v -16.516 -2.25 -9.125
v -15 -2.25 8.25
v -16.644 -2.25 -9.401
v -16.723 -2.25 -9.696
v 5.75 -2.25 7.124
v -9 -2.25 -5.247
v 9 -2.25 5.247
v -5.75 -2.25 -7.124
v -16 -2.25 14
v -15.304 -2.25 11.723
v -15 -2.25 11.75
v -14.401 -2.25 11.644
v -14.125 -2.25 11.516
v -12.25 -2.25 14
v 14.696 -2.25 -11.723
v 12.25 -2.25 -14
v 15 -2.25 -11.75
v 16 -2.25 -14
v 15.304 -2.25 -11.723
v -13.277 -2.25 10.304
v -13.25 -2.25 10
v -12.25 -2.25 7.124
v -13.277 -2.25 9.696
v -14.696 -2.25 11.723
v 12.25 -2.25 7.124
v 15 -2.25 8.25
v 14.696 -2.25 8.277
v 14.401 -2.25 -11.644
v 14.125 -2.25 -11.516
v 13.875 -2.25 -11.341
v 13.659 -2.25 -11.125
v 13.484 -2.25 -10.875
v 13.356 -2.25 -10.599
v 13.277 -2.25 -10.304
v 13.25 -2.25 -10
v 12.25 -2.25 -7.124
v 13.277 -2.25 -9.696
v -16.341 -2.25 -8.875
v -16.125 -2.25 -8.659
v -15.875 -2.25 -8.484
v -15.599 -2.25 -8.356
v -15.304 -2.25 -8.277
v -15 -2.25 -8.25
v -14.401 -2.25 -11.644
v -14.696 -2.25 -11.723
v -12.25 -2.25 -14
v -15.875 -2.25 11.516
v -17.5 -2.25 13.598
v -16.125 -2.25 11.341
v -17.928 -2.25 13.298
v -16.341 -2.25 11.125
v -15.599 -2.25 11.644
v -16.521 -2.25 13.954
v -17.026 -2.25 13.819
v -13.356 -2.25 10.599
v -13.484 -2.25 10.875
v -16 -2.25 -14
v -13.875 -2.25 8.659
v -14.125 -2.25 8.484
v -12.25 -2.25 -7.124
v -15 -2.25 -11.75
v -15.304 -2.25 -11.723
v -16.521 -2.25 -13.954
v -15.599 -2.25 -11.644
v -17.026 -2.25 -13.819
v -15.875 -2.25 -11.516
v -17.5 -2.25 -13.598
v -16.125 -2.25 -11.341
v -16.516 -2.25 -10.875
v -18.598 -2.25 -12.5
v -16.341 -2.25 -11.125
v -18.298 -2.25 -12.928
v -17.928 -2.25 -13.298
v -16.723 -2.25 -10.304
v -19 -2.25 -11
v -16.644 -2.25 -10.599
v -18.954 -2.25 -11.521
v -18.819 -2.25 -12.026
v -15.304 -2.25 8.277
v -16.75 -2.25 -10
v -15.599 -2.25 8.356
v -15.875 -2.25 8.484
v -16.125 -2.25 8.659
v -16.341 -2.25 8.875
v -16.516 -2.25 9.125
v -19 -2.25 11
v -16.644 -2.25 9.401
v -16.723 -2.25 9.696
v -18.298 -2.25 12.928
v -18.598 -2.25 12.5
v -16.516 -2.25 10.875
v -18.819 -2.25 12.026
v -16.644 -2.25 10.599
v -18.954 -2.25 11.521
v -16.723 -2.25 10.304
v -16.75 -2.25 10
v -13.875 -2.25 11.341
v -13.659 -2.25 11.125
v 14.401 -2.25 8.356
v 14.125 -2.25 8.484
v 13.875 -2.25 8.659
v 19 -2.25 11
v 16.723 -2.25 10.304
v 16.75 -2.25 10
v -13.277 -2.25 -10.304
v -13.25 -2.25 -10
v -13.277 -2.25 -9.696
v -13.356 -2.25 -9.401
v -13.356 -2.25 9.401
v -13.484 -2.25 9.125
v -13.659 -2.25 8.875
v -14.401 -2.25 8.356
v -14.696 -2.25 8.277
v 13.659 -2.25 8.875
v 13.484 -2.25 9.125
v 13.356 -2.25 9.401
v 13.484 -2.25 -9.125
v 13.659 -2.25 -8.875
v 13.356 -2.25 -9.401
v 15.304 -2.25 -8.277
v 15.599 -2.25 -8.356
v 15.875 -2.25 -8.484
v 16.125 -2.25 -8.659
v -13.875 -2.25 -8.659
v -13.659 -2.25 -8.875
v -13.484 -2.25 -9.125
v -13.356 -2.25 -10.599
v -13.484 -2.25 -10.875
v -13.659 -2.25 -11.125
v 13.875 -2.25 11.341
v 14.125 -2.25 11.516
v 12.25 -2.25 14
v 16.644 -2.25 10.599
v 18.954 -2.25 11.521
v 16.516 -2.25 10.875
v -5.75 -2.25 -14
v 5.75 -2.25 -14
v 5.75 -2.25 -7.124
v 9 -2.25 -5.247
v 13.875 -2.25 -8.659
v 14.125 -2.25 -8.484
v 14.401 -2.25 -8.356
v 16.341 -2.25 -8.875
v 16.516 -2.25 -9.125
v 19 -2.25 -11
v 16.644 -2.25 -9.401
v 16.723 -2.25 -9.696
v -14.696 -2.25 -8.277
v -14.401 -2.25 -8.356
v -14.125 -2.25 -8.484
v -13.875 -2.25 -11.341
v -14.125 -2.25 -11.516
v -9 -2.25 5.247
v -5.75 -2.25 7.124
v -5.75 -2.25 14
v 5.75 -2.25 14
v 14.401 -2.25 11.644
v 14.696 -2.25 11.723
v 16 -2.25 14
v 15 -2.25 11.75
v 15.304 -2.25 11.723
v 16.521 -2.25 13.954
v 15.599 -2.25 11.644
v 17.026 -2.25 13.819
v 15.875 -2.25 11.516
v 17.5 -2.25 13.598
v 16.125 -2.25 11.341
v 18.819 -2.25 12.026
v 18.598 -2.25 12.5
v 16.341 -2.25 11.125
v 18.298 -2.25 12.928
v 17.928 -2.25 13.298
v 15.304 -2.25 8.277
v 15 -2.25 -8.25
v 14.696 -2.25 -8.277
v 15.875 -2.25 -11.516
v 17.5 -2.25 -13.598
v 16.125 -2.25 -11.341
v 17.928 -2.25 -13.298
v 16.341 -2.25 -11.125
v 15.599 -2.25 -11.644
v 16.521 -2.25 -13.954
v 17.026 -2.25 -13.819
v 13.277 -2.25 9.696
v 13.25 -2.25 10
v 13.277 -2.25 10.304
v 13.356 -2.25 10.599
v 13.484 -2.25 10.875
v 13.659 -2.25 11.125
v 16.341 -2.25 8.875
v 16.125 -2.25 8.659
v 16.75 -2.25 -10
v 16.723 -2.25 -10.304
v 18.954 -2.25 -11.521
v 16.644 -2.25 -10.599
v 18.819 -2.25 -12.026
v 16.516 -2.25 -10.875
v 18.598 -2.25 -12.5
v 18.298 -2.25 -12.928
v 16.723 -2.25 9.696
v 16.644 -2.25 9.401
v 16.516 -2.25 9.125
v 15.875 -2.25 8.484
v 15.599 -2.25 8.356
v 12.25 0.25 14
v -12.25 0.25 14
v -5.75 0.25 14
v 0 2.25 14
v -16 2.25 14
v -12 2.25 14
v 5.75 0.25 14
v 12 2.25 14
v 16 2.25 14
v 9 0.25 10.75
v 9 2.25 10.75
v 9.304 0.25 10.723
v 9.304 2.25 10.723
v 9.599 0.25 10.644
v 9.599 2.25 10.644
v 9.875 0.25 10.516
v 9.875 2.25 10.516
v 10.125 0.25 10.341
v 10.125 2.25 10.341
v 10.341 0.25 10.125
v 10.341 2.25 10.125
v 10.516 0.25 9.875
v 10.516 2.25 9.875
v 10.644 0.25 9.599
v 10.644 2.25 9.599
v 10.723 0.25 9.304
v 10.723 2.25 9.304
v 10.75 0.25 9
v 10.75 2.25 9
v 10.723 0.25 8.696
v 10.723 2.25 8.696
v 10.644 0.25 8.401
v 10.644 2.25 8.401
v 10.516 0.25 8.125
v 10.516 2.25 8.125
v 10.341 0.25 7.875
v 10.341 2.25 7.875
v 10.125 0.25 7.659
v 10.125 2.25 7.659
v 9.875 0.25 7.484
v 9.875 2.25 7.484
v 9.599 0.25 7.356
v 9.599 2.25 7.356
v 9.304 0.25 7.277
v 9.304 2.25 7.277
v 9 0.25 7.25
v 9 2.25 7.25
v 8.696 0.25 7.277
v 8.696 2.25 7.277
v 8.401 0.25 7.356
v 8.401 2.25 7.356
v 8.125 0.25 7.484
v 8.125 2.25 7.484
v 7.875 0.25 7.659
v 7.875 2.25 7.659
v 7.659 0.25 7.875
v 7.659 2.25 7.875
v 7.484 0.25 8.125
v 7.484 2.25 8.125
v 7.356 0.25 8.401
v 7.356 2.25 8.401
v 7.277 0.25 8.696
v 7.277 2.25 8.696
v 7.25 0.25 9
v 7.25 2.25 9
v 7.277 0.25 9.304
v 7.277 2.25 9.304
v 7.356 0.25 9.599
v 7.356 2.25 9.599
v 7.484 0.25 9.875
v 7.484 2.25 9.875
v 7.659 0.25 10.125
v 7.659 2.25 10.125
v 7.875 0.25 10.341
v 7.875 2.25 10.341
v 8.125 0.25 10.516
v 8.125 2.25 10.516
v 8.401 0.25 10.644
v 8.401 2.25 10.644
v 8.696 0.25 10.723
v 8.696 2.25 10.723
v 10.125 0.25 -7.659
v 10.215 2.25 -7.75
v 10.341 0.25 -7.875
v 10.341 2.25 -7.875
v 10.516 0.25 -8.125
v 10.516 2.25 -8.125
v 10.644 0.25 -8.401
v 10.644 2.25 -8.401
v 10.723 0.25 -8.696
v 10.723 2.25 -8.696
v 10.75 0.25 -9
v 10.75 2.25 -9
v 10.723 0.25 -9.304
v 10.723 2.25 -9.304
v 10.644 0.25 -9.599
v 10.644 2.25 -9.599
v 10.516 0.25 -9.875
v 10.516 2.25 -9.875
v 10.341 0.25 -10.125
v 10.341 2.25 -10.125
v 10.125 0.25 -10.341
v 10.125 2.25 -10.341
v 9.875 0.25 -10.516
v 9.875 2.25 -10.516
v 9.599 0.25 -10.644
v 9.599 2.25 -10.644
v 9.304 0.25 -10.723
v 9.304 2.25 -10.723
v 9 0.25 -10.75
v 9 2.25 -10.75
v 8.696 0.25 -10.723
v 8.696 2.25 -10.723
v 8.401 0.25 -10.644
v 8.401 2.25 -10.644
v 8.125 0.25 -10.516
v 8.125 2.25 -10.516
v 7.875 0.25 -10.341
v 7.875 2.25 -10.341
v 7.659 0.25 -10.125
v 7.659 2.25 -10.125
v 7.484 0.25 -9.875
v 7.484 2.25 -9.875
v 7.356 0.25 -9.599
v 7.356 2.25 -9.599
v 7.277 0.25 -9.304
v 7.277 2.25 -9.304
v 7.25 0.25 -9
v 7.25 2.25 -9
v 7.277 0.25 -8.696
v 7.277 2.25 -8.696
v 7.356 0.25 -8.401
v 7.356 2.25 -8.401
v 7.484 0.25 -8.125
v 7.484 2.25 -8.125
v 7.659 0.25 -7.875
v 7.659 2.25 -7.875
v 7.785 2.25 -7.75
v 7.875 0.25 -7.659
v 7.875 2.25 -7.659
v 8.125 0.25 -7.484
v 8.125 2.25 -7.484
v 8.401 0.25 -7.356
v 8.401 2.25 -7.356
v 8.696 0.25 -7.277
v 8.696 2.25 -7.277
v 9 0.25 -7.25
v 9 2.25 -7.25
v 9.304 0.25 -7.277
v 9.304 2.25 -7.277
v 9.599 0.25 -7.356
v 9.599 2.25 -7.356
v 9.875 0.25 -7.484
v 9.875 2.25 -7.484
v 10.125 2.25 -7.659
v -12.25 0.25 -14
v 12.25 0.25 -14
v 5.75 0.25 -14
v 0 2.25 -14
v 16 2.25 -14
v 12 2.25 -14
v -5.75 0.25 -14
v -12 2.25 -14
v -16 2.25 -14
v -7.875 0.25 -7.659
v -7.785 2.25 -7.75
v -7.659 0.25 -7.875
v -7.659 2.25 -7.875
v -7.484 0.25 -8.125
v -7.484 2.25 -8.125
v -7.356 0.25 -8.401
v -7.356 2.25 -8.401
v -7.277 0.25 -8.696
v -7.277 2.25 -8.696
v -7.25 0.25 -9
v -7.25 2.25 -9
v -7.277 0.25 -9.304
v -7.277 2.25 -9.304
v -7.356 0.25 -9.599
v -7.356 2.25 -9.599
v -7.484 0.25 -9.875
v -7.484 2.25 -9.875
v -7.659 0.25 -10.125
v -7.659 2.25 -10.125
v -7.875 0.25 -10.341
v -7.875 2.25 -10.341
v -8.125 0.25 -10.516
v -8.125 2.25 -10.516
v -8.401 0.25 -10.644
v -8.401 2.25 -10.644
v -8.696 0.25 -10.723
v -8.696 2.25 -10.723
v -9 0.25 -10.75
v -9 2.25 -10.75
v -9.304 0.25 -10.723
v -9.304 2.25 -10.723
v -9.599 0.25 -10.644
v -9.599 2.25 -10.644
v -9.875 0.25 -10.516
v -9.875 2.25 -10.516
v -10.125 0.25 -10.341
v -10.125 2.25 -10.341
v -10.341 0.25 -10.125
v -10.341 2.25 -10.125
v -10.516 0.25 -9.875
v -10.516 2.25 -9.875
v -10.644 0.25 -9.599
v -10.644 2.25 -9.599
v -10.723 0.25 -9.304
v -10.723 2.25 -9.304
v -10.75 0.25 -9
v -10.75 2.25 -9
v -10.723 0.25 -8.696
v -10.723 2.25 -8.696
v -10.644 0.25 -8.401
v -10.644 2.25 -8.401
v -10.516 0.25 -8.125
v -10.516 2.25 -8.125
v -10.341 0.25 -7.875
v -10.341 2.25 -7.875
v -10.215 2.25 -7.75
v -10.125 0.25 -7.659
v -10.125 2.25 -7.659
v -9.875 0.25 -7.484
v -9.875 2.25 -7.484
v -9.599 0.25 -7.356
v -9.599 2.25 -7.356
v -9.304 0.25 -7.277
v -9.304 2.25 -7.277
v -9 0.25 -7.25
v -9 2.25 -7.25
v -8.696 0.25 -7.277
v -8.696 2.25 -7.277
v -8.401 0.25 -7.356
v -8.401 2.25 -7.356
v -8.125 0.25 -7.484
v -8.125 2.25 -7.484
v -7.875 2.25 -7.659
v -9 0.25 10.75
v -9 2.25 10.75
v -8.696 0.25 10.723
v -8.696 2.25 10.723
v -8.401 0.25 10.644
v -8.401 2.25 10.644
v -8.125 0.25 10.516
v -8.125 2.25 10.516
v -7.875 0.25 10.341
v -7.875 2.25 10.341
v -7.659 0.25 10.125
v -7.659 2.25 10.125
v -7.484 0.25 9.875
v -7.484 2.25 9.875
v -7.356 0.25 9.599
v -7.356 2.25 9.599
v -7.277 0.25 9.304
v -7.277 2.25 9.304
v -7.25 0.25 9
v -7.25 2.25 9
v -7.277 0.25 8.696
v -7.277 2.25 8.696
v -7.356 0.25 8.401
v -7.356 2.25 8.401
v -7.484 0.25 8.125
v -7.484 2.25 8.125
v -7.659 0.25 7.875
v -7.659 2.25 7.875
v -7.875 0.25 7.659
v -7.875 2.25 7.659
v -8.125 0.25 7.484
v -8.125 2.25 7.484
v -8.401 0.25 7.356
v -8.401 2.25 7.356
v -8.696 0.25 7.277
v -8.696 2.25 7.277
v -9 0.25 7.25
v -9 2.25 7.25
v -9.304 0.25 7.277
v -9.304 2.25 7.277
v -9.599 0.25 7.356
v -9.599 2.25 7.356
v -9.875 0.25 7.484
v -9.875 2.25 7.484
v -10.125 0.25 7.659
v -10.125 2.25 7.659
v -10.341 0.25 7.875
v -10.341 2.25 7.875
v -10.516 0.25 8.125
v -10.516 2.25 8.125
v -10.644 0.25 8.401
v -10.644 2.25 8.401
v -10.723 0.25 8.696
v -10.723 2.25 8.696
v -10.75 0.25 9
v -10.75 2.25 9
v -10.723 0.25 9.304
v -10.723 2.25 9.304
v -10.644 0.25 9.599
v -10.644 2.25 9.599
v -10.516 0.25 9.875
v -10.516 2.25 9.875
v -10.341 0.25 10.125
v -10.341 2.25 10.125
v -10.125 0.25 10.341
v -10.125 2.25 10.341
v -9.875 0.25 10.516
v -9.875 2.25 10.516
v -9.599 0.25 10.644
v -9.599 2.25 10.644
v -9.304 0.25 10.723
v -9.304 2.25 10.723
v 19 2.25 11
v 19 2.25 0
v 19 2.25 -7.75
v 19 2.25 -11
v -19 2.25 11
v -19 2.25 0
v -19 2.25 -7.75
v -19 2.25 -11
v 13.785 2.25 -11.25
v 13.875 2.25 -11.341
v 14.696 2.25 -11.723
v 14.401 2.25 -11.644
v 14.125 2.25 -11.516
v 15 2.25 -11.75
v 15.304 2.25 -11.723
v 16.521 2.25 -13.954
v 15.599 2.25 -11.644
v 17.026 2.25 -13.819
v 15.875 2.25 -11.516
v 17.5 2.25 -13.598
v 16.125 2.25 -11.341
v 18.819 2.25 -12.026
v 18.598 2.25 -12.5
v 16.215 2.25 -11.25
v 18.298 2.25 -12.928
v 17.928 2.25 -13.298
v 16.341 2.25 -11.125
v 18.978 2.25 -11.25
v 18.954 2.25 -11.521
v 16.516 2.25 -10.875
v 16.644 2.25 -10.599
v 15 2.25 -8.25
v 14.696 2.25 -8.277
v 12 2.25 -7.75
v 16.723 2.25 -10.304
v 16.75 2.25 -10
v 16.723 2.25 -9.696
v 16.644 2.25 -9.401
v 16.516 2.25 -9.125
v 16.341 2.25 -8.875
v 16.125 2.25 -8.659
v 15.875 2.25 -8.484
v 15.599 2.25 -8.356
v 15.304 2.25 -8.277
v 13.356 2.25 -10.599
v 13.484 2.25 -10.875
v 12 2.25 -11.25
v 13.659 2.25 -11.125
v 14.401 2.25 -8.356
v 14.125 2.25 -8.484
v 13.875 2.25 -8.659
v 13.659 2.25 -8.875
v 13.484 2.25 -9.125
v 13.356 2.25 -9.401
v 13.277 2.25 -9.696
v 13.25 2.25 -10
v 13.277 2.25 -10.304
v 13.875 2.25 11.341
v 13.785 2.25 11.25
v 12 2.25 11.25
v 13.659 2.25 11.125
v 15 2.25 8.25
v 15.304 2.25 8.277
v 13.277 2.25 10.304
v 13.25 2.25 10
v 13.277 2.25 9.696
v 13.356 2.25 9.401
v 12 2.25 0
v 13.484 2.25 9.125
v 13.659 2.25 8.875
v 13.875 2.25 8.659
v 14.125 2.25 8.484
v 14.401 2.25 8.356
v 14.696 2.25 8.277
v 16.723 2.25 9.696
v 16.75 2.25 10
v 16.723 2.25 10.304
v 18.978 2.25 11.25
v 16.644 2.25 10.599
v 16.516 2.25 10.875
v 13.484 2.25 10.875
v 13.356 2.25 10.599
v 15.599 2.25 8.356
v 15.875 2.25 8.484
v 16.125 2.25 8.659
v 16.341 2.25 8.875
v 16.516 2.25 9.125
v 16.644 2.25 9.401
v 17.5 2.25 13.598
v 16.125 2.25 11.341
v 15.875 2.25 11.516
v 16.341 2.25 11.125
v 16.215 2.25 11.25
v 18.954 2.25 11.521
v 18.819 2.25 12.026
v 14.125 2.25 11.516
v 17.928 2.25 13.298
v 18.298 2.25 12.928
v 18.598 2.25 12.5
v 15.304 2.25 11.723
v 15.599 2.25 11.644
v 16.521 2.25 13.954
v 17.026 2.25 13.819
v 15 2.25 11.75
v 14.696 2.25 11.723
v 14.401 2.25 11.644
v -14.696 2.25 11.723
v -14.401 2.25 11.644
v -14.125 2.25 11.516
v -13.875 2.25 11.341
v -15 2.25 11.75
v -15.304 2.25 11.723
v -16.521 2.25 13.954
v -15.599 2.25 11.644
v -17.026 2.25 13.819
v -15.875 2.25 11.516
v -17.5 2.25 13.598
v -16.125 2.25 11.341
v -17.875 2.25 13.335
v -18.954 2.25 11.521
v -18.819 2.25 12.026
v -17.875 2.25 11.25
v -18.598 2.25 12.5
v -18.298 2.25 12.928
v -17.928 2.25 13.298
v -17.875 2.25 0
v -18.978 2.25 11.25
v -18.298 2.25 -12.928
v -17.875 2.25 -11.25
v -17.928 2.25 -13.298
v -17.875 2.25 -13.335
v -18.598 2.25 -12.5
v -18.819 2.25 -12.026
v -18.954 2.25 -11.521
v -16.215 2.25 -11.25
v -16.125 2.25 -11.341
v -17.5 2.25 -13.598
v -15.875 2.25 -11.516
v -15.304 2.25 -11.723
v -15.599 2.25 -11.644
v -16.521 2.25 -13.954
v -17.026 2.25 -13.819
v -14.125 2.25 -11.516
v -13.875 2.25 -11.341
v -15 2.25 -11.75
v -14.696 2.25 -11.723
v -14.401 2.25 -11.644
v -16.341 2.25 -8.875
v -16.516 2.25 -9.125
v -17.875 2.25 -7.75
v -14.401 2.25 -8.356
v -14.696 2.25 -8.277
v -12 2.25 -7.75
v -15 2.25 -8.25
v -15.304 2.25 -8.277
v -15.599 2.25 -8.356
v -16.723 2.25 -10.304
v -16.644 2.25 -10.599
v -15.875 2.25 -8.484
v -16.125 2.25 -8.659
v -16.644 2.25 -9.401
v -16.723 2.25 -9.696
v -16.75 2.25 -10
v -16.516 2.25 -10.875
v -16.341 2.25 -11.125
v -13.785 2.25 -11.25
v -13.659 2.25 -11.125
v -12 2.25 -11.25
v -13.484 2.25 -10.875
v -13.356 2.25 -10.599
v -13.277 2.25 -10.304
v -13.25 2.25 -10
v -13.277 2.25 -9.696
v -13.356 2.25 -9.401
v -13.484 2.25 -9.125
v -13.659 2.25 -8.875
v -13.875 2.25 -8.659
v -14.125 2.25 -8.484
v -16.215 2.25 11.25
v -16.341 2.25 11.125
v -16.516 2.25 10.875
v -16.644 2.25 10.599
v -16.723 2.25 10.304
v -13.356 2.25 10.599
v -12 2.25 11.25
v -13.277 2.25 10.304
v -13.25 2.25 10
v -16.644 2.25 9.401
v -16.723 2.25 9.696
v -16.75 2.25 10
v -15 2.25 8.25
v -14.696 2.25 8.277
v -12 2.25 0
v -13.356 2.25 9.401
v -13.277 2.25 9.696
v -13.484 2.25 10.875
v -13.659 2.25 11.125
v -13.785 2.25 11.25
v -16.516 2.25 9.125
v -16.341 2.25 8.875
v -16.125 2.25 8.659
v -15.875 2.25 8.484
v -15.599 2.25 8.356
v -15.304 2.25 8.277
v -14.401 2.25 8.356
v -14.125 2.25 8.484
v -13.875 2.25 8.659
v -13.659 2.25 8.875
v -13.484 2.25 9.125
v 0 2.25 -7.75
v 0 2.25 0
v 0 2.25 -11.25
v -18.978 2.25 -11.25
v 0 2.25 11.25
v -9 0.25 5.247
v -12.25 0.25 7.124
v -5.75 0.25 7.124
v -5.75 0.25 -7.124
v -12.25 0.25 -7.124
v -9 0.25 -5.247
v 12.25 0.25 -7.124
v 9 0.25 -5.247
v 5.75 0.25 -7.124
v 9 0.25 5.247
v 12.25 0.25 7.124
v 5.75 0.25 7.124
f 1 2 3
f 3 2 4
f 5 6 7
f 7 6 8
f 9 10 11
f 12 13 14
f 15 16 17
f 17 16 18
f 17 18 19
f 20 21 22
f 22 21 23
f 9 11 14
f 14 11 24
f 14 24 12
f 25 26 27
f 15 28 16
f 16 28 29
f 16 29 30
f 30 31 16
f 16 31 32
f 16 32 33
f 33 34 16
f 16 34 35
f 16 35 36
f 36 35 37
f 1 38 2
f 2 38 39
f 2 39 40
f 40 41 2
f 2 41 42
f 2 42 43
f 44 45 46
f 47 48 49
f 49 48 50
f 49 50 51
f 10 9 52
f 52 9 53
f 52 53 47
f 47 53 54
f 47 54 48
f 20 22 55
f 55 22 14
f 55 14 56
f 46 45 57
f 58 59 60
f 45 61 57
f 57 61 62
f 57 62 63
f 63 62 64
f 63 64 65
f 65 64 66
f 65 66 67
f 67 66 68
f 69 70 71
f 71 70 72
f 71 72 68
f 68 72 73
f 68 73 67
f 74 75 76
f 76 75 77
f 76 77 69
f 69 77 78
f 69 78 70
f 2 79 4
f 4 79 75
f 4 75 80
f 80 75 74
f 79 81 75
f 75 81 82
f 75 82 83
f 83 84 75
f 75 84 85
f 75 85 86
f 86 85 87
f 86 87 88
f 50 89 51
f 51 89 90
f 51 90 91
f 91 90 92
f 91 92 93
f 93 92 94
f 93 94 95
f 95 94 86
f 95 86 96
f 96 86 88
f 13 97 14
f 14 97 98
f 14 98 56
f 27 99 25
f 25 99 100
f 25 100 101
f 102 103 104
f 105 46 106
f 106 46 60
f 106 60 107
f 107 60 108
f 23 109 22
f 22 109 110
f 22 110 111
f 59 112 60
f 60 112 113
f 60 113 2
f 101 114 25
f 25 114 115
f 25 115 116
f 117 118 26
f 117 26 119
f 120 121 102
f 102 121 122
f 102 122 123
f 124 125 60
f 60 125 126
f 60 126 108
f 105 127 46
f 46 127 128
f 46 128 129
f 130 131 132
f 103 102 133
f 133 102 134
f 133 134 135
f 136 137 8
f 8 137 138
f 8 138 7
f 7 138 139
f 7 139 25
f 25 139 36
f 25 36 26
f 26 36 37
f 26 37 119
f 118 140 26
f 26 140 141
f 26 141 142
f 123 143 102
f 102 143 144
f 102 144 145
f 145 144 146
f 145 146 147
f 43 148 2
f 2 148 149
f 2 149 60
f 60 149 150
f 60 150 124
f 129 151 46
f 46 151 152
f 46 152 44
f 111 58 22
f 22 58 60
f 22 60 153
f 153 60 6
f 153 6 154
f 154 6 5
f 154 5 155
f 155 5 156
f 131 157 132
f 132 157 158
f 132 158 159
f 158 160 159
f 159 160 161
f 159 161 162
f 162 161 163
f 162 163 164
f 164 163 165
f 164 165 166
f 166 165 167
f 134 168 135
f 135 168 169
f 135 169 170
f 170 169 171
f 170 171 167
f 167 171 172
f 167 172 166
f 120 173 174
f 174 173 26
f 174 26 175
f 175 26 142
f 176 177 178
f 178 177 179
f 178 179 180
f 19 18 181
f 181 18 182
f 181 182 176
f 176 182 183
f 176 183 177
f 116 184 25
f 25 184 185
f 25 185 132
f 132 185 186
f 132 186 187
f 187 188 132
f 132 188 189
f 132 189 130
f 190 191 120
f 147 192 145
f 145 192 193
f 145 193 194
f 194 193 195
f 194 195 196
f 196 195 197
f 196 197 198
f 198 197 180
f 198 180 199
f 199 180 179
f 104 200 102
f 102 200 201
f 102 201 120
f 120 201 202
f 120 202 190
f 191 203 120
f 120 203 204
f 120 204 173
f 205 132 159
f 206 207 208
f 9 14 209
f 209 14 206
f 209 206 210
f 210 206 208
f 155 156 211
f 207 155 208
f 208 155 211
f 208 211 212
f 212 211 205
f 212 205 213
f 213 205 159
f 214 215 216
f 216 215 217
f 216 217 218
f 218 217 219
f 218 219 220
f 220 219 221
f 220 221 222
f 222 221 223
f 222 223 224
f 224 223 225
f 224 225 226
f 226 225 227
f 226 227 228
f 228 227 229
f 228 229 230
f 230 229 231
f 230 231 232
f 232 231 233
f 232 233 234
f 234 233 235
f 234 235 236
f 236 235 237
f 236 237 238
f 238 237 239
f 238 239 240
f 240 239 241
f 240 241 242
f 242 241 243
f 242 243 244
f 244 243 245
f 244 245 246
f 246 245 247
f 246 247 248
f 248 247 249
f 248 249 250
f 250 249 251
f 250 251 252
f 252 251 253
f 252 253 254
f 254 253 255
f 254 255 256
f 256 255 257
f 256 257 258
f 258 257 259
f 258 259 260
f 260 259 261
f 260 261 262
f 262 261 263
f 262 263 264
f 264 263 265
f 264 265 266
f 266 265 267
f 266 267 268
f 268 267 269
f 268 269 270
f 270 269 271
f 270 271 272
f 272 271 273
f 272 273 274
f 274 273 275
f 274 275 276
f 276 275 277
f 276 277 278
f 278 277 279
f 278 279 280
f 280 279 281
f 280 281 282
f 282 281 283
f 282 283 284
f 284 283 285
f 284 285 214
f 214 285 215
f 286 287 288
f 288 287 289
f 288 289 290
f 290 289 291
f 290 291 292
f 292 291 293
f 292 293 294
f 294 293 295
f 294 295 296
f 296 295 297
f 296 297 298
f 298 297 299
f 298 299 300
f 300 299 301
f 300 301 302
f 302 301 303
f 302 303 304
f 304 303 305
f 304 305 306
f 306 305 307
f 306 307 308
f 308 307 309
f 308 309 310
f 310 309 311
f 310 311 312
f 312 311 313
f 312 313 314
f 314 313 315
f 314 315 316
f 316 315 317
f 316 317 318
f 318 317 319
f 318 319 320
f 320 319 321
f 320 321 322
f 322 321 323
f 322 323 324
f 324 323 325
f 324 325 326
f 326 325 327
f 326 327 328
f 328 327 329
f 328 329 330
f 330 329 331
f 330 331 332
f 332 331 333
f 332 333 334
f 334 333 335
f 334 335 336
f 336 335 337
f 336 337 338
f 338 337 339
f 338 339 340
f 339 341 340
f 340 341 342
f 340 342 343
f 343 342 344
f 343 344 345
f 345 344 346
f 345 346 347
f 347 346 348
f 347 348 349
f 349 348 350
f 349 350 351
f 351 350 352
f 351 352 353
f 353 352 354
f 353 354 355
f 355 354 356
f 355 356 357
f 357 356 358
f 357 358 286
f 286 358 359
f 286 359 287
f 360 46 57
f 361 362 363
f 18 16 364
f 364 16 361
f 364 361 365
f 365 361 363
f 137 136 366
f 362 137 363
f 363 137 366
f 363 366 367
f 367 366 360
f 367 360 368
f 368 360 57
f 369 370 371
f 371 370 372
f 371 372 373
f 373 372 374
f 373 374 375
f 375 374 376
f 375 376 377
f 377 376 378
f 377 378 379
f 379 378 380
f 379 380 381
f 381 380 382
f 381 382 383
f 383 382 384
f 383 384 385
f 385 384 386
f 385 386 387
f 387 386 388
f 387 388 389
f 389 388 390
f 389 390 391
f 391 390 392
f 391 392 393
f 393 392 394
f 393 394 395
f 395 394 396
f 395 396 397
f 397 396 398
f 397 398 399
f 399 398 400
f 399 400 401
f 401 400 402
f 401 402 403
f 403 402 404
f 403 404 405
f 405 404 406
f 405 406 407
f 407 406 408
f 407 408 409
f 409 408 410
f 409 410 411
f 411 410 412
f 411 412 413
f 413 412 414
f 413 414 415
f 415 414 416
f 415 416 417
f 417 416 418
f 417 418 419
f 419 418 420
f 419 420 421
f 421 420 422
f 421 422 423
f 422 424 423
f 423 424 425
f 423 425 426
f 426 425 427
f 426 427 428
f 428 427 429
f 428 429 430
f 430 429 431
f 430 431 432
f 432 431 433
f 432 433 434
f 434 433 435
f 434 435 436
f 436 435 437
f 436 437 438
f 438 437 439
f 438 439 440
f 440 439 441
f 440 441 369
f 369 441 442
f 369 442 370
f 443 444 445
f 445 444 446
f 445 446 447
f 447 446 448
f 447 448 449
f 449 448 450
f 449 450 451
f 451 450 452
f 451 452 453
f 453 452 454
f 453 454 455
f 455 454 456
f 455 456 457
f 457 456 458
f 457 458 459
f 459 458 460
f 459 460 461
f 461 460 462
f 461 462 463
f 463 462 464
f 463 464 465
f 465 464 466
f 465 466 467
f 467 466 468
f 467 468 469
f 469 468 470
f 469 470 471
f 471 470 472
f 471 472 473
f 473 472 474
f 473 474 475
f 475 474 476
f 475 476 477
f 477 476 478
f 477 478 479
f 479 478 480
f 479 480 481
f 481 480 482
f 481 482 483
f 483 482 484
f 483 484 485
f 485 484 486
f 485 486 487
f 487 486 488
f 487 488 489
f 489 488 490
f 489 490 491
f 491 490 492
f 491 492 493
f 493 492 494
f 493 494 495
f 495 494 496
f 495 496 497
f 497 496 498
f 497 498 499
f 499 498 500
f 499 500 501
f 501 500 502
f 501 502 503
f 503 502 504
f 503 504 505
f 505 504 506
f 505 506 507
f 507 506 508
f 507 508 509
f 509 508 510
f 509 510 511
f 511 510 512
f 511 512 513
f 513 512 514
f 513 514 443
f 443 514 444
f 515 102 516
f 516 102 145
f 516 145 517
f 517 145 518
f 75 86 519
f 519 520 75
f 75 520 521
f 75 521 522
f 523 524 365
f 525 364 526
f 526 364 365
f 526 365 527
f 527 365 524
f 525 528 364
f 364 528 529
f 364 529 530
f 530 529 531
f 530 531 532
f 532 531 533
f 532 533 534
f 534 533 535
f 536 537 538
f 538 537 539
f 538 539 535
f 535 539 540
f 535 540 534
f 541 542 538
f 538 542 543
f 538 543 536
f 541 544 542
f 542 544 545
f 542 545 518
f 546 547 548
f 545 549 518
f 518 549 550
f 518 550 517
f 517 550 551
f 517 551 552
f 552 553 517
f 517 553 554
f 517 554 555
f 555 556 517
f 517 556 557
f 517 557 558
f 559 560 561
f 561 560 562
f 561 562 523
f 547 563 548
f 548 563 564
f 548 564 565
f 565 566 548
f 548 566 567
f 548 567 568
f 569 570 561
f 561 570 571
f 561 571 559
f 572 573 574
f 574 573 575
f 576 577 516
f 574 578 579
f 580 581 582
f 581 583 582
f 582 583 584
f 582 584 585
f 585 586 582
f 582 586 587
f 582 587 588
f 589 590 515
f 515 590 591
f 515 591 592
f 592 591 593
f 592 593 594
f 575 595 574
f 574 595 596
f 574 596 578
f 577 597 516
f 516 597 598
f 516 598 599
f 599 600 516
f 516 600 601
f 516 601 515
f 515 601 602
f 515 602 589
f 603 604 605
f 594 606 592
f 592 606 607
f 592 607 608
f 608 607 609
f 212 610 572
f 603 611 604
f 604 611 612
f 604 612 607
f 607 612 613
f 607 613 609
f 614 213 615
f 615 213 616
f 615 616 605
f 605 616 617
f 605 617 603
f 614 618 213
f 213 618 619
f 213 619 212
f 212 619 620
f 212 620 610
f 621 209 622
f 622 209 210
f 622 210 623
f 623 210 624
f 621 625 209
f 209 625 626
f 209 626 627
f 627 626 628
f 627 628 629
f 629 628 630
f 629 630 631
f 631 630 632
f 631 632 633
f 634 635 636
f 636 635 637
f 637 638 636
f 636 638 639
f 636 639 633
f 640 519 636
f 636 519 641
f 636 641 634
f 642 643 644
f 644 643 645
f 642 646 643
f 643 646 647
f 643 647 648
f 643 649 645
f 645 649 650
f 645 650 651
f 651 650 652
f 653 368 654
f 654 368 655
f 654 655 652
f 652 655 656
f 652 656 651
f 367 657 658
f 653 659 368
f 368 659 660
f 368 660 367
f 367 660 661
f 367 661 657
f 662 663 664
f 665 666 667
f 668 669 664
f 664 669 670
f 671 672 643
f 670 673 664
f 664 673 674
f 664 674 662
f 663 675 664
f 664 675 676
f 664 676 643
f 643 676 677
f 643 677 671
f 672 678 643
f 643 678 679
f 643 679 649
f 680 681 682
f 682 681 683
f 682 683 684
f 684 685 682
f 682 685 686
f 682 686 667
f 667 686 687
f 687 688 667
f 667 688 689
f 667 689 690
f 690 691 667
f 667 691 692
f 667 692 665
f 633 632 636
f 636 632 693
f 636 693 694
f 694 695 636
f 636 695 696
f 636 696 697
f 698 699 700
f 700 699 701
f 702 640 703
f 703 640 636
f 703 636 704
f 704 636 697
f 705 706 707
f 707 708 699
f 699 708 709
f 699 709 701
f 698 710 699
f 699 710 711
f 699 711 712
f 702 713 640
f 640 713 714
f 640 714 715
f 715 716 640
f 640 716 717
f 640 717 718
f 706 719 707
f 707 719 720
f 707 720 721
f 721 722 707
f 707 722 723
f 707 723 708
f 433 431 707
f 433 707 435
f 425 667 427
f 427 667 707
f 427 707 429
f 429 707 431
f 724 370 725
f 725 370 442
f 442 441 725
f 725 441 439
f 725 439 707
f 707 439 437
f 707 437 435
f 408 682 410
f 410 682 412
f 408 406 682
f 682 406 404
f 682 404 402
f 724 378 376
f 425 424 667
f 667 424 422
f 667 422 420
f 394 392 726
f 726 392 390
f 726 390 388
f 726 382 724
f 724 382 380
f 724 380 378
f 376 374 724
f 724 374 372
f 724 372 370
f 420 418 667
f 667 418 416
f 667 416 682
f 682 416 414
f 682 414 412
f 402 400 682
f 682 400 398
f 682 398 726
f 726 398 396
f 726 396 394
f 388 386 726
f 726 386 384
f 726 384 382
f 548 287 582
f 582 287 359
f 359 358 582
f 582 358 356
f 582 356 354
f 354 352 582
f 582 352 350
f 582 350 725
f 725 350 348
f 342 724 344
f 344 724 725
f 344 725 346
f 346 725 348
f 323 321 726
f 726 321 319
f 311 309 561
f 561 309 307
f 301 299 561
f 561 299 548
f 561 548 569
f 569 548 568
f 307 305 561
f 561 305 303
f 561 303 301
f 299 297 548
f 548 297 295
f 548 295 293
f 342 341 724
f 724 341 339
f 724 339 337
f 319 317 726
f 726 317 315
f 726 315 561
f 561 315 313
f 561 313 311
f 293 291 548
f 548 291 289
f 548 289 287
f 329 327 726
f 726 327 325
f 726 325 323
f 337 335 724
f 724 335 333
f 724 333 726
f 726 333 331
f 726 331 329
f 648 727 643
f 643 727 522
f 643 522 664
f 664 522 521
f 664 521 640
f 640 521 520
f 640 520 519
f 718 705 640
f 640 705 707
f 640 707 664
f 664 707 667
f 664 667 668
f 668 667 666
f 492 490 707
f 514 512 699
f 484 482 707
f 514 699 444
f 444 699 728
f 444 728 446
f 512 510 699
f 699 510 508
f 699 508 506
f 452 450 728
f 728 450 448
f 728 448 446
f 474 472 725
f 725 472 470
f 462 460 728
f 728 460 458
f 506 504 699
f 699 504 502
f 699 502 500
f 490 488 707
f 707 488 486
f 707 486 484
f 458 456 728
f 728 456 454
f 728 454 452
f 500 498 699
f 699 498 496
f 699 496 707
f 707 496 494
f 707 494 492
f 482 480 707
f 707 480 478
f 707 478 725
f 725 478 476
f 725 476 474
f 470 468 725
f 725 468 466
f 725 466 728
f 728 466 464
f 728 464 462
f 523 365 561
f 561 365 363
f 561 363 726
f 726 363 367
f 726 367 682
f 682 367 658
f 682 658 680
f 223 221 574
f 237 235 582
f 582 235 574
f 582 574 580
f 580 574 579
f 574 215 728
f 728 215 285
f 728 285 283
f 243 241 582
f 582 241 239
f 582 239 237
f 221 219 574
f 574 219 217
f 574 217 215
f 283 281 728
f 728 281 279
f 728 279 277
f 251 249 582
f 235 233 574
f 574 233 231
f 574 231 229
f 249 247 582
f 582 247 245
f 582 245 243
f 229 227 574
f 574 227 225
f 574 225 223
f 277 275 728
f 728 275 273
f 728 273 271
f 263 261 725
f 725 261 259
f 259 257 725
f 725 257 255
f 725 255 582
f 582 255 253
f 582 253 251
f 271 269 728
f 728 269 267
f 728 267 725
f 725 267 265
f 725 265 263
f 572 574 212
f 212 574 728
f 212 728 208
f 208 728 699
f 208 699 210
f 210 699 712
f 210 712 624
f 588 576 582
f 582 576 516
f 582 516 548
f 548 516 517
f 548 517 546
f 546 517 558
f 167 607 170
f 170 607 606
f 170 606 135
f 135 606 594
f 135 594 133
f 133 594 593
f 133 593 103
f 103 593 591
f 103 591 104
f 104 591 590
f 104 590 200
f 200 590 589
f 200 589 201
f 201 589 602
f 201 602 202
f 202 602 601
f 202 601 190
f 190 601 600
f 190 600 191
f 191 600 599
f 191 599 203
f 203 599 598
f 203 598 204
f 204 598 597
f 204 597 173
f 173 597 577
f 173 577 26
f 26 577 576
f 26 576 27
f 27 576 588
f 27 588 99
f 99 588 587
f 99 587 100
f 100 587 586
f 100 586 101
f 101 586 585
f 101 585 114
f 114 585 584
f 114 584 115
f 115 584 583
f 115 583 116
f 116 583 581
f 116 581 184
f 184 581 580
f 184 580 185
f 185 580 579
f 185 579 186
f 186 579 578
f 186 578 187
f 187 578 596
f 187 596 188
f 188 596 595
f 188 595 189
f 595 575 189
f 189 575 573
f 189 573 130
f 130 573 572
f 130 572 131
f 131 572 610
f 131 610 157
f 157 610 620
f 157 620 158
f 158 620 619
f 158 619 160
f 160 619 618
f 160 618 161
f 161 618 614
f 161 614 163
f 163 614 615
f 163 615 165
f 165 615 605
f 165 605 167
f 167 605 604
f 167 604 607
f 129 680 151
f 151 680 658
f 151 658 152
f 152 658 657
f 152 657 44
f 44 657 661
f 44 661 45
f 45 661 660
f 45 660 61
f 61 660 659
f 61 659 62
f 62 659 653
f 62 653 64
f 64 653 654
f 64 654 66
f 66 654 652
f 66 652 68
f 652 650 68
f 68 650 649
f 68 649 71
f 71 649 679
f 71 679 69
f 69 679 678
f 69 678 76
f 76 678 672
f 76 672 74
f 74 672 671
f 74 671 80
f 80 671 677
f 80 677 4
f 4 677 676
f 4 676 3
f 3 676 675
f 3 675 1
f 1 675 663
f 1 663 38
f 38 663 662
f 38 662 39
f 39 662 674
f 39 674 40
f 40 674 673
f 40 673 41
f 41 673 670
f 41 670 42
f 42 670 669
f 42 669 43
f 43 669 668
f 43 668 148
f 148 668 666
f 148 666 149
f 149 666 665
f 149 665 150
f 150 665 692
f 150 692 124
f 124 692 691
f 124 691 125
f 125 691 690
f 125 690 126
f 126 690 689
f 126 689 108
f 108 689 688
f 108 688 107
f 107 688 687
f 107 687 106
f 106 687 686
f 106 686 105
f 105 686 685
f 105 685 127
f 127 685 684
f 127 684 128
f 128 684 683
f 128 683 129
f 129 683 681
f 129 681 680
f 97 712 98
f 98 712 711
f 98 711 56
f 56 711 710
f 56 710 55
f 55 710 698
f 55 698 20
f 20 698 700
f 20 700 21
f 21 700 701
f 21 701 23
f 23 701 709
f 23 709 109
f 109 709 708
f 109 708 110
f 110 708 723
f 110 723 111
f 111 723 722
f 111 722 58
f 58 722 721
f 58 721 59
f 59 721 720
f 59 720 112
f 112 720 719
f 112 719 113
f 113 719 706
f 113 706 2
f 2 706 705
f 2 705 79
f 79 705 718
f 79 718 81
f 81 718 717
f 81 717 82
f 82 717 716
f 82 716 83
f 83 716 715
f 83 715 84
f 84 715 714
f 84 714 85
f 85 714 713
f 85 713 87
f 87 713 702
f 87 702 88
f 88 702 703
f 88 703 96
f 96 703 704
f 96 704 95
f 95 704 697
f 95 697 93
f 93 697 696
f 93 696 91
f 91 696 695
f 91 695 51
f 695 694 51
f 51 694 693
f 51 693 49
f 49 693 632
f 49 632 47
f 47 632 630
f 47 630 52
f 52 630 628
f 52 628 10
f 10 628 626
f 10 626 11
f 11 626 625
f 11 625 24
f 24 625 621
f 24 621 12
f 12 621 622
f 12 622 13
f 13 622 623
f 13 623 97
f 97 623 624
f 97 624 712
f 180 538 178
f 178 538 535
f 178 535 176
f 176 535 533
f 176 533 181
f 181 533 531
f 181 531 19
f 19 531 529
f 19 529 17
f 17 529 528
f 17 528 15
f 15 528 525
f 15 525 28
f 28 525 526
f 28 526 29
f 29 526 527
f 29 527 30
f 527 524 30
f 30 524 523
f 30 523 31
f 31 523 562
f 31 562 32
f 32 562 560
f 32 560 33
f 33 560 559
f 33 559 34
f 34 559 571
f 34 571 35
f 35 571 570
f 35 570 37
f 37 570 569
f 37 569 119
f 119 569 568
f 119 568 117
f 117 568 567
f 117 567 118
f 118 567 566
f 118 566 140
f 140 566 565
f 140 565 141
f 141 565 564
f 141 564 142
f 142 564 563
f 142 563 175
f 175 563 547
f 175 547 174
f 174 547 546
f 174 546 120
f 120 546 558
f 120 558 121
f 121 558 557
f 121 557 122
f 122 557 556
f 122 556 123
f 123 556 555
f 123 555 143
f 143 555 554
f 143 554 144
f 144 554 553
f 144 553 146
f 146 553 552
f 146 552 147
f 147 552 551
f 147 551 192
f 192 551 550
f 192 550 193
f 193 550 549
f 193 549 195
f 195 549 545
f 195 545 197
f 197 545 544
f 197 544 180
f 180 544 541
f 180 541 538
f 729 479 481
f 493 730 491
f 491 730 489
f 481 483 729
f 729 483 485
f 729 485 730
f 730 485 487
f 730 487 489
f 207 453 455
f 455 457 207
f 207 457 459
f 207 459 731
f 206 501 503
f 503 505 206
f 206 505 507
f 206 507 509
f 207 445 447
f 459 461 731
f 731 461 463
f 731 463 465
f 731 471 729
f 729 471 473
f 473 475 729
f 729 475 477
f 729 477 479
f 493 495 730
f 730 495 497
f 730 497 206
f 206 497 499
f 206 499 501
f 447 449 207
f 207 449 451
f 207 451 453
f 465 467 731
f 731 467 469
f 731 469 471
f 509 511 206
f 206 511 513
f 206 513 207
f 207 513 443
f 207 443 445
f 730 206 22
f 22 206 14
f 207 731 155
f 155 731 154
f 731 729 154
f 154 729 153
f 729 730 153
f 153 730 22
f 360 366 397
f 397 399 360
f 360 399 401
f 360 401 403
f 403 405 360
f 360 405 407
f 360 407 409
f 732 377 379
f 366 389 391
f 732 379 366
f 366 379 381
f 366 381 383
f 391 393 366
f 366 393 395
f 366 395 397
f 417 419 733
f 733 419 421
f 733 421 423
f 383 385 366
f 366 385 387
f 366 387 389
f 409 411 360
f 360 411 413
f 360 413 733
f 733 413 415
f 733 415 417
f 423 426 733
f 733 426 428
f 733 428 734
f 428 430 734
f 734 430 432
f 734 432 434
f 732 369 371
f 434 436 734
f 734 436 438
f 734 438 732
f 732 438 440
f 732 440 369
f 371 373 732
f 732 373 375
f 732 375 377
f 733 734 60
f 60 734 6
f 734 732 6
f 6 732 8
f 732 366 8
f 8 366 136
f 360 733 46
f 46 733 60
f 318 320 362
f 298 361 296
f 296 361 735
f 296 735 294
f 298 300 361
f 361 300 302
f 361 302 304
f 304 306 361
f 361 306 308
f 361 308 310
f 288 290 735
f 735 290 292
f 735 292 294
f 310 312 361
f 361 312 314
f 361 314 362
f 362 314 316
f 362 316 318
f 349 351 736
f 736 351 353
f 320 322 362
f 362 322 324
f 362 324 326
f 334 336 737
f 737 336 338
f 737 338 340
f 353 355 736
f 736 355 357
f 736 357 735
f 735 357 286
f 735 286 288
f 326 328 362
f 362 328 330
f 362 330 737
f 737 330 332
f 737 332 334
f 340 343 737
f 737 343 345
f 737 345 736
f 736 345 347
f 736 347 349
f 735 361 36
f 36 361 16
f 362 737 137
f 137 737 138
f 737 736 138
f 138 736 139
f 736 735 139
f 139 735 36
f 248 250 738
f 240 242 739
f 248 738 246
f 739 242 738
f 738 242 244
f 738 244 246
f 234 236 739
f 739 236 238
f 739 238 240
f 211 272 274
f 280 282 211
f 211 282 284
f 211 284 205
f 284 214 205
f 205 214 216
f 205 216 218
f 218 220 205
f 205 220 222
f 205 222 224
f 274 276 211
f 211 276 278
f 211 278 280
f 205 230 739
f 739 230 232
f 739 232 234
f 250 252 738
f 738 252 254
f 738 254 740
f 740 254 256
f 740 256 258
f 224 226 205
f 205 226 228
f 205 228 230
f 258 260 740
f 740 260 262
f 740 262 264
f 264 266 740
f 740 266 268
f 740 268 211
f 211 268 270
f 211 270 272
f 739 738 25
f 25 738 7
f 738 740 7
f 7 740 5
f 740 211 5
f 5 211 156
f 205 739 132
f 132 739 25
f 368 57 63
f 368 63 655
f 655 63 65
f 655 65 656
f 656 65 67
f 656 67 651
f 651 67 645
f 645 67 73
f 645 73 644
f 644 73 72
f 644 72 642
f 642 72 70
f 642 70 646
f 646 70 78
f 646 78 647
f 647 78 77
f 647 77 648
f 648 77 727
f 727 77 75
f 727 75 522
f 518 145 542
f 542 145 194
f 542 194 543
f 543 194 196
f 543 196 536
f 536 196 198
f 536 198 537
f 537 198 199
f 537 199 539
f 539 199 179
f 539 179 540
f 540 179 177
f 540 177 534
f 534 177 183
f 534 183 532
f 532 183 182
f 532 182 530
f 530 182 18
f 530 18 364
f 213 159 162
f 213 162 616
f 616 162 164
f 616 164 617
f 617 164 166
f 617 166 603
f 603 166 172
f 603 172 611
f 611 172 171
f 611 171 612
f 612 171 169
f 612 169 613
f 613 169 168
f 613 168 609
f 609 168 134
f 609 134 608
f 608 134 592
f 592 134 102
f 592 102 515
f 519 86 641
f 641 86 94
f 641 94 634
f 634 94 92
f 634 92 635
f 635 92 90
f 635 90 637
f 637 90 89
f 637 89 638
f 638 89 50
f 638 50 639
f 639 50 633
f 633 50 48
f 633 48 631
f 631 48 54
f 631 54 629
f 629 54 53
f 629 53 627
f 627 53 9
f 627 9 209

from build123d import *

# Parameters (mm, degrees)
SKETCH_1_W              = 38
SKETCH_1_H              = 28
EXTRUDE_1_DEPTH         = 2.25
HOLE_WIZARD_3_5_3_5_2_D = 3.5
HOLE_WIZARD_3_5_3_5_4_D = 3.5
CUT_EXTRUDE_2_DEPTH     = 2.5
MIRROR_4_COPY_1_DEPTH   = 2.5
FILLET_2_R              = 3


with BuildPart() as part:
    # 草圖1 → 填料-伸長1 (new, symmetric)
    with BuildSketch(Plane(origin=(0, 0, 0), x_dir=(1, 0, 0), z_dir=(0, 1, 0))):
        Rectangle(SKETCH_1_W, SKETCH_1_H)
    extrude(amount=EXTRUDE_1_DEPTH, both=True)

    # Ø3.5 (3.5) 直徑孔2 (through all)
    with Locations(Plane(origin=(0, 2.25, 0), x_dir=(1, 0, 0), z_dir=(0, 1, 0))):
        with Locations((15, 10), (-15, -10), (-15, 10), (15, -10)):
            Hole(HOLE_WIZARD_3_5_3_5_2_D / 2)

    # Ø3.5 (3.5) 直徑孔4 (through all)
    with Locations(Plane(origin=(0, 2.25, 0), x_dir=(1, 0, 0), z_dir=(0, 1, 0))):
        with Locations((9, 9), (-9, -9), (-9, 9), (9, -9)):
            Hole(HOLE_WIZARD_3_5_3_5_4_D / 2)

    # 草圖9 → 除料-伸長2 (cut)
    with BuildSketch(Plane.XZ.offset(2.25)):
        Polygon((-12.25, 10.876388375), (-12.25, 14), (-5.75, 14), (-5.75, 10.876388375), (-5.75, 7.123611625), (-9, 5.24722325), (-12.25, 7.123611625), align=None)
    cut_extrude_2 = extrude(amount=-CUT_EXTRUDE_2_DEPTH, mode=Mode.SUBTRACT)

    # 鏡射3: 除料-伸長2 across plane
    add(cut_extrude_2.mirror(Plane.XY), mode=Mode.SUBTRACT)

    # 鏡射4: 除料-伸長2 across plane
    add(cut_extrude_2.mirror(Plane(origin=(0, 0, 0), x_dir=(0, 0, 1), z_dir=(1, 0, 0))), mode=Mode.SUBTRACT)

    # 鏡射4 copy 1 sketch → 鏡射4 copy 1 (cut)
    with BuildSketch(Plane(origin=(0, -2.25, 0), x_dir=(-1, 0, 0), z_dir=(0, -1, 0))):
        Polygon((-12.25, 10.876388375), (-12.25, 14), (-5.75, 14), (-5.75, 10.876388375), (-5.75, 7.123611625), (-9, 5.24722325), (-12.25, 7.123611625), align=None)
    extrude(amount=-MIRROR_4_COPY_1_DEPTH, mode=Mode.SUBTRACT)

    # 圓角2
    fillet_2_edges = [part.edges().sort_by_distance(p)[0] for p in [
        (19, 0, 14),
        (-19, 0, 14),
        (-19, 0, -14),
        (19, 0, -14),
    ]]
    fillet(fillet_2_edges, radius=FILLET_2_R)


solid = part.part
